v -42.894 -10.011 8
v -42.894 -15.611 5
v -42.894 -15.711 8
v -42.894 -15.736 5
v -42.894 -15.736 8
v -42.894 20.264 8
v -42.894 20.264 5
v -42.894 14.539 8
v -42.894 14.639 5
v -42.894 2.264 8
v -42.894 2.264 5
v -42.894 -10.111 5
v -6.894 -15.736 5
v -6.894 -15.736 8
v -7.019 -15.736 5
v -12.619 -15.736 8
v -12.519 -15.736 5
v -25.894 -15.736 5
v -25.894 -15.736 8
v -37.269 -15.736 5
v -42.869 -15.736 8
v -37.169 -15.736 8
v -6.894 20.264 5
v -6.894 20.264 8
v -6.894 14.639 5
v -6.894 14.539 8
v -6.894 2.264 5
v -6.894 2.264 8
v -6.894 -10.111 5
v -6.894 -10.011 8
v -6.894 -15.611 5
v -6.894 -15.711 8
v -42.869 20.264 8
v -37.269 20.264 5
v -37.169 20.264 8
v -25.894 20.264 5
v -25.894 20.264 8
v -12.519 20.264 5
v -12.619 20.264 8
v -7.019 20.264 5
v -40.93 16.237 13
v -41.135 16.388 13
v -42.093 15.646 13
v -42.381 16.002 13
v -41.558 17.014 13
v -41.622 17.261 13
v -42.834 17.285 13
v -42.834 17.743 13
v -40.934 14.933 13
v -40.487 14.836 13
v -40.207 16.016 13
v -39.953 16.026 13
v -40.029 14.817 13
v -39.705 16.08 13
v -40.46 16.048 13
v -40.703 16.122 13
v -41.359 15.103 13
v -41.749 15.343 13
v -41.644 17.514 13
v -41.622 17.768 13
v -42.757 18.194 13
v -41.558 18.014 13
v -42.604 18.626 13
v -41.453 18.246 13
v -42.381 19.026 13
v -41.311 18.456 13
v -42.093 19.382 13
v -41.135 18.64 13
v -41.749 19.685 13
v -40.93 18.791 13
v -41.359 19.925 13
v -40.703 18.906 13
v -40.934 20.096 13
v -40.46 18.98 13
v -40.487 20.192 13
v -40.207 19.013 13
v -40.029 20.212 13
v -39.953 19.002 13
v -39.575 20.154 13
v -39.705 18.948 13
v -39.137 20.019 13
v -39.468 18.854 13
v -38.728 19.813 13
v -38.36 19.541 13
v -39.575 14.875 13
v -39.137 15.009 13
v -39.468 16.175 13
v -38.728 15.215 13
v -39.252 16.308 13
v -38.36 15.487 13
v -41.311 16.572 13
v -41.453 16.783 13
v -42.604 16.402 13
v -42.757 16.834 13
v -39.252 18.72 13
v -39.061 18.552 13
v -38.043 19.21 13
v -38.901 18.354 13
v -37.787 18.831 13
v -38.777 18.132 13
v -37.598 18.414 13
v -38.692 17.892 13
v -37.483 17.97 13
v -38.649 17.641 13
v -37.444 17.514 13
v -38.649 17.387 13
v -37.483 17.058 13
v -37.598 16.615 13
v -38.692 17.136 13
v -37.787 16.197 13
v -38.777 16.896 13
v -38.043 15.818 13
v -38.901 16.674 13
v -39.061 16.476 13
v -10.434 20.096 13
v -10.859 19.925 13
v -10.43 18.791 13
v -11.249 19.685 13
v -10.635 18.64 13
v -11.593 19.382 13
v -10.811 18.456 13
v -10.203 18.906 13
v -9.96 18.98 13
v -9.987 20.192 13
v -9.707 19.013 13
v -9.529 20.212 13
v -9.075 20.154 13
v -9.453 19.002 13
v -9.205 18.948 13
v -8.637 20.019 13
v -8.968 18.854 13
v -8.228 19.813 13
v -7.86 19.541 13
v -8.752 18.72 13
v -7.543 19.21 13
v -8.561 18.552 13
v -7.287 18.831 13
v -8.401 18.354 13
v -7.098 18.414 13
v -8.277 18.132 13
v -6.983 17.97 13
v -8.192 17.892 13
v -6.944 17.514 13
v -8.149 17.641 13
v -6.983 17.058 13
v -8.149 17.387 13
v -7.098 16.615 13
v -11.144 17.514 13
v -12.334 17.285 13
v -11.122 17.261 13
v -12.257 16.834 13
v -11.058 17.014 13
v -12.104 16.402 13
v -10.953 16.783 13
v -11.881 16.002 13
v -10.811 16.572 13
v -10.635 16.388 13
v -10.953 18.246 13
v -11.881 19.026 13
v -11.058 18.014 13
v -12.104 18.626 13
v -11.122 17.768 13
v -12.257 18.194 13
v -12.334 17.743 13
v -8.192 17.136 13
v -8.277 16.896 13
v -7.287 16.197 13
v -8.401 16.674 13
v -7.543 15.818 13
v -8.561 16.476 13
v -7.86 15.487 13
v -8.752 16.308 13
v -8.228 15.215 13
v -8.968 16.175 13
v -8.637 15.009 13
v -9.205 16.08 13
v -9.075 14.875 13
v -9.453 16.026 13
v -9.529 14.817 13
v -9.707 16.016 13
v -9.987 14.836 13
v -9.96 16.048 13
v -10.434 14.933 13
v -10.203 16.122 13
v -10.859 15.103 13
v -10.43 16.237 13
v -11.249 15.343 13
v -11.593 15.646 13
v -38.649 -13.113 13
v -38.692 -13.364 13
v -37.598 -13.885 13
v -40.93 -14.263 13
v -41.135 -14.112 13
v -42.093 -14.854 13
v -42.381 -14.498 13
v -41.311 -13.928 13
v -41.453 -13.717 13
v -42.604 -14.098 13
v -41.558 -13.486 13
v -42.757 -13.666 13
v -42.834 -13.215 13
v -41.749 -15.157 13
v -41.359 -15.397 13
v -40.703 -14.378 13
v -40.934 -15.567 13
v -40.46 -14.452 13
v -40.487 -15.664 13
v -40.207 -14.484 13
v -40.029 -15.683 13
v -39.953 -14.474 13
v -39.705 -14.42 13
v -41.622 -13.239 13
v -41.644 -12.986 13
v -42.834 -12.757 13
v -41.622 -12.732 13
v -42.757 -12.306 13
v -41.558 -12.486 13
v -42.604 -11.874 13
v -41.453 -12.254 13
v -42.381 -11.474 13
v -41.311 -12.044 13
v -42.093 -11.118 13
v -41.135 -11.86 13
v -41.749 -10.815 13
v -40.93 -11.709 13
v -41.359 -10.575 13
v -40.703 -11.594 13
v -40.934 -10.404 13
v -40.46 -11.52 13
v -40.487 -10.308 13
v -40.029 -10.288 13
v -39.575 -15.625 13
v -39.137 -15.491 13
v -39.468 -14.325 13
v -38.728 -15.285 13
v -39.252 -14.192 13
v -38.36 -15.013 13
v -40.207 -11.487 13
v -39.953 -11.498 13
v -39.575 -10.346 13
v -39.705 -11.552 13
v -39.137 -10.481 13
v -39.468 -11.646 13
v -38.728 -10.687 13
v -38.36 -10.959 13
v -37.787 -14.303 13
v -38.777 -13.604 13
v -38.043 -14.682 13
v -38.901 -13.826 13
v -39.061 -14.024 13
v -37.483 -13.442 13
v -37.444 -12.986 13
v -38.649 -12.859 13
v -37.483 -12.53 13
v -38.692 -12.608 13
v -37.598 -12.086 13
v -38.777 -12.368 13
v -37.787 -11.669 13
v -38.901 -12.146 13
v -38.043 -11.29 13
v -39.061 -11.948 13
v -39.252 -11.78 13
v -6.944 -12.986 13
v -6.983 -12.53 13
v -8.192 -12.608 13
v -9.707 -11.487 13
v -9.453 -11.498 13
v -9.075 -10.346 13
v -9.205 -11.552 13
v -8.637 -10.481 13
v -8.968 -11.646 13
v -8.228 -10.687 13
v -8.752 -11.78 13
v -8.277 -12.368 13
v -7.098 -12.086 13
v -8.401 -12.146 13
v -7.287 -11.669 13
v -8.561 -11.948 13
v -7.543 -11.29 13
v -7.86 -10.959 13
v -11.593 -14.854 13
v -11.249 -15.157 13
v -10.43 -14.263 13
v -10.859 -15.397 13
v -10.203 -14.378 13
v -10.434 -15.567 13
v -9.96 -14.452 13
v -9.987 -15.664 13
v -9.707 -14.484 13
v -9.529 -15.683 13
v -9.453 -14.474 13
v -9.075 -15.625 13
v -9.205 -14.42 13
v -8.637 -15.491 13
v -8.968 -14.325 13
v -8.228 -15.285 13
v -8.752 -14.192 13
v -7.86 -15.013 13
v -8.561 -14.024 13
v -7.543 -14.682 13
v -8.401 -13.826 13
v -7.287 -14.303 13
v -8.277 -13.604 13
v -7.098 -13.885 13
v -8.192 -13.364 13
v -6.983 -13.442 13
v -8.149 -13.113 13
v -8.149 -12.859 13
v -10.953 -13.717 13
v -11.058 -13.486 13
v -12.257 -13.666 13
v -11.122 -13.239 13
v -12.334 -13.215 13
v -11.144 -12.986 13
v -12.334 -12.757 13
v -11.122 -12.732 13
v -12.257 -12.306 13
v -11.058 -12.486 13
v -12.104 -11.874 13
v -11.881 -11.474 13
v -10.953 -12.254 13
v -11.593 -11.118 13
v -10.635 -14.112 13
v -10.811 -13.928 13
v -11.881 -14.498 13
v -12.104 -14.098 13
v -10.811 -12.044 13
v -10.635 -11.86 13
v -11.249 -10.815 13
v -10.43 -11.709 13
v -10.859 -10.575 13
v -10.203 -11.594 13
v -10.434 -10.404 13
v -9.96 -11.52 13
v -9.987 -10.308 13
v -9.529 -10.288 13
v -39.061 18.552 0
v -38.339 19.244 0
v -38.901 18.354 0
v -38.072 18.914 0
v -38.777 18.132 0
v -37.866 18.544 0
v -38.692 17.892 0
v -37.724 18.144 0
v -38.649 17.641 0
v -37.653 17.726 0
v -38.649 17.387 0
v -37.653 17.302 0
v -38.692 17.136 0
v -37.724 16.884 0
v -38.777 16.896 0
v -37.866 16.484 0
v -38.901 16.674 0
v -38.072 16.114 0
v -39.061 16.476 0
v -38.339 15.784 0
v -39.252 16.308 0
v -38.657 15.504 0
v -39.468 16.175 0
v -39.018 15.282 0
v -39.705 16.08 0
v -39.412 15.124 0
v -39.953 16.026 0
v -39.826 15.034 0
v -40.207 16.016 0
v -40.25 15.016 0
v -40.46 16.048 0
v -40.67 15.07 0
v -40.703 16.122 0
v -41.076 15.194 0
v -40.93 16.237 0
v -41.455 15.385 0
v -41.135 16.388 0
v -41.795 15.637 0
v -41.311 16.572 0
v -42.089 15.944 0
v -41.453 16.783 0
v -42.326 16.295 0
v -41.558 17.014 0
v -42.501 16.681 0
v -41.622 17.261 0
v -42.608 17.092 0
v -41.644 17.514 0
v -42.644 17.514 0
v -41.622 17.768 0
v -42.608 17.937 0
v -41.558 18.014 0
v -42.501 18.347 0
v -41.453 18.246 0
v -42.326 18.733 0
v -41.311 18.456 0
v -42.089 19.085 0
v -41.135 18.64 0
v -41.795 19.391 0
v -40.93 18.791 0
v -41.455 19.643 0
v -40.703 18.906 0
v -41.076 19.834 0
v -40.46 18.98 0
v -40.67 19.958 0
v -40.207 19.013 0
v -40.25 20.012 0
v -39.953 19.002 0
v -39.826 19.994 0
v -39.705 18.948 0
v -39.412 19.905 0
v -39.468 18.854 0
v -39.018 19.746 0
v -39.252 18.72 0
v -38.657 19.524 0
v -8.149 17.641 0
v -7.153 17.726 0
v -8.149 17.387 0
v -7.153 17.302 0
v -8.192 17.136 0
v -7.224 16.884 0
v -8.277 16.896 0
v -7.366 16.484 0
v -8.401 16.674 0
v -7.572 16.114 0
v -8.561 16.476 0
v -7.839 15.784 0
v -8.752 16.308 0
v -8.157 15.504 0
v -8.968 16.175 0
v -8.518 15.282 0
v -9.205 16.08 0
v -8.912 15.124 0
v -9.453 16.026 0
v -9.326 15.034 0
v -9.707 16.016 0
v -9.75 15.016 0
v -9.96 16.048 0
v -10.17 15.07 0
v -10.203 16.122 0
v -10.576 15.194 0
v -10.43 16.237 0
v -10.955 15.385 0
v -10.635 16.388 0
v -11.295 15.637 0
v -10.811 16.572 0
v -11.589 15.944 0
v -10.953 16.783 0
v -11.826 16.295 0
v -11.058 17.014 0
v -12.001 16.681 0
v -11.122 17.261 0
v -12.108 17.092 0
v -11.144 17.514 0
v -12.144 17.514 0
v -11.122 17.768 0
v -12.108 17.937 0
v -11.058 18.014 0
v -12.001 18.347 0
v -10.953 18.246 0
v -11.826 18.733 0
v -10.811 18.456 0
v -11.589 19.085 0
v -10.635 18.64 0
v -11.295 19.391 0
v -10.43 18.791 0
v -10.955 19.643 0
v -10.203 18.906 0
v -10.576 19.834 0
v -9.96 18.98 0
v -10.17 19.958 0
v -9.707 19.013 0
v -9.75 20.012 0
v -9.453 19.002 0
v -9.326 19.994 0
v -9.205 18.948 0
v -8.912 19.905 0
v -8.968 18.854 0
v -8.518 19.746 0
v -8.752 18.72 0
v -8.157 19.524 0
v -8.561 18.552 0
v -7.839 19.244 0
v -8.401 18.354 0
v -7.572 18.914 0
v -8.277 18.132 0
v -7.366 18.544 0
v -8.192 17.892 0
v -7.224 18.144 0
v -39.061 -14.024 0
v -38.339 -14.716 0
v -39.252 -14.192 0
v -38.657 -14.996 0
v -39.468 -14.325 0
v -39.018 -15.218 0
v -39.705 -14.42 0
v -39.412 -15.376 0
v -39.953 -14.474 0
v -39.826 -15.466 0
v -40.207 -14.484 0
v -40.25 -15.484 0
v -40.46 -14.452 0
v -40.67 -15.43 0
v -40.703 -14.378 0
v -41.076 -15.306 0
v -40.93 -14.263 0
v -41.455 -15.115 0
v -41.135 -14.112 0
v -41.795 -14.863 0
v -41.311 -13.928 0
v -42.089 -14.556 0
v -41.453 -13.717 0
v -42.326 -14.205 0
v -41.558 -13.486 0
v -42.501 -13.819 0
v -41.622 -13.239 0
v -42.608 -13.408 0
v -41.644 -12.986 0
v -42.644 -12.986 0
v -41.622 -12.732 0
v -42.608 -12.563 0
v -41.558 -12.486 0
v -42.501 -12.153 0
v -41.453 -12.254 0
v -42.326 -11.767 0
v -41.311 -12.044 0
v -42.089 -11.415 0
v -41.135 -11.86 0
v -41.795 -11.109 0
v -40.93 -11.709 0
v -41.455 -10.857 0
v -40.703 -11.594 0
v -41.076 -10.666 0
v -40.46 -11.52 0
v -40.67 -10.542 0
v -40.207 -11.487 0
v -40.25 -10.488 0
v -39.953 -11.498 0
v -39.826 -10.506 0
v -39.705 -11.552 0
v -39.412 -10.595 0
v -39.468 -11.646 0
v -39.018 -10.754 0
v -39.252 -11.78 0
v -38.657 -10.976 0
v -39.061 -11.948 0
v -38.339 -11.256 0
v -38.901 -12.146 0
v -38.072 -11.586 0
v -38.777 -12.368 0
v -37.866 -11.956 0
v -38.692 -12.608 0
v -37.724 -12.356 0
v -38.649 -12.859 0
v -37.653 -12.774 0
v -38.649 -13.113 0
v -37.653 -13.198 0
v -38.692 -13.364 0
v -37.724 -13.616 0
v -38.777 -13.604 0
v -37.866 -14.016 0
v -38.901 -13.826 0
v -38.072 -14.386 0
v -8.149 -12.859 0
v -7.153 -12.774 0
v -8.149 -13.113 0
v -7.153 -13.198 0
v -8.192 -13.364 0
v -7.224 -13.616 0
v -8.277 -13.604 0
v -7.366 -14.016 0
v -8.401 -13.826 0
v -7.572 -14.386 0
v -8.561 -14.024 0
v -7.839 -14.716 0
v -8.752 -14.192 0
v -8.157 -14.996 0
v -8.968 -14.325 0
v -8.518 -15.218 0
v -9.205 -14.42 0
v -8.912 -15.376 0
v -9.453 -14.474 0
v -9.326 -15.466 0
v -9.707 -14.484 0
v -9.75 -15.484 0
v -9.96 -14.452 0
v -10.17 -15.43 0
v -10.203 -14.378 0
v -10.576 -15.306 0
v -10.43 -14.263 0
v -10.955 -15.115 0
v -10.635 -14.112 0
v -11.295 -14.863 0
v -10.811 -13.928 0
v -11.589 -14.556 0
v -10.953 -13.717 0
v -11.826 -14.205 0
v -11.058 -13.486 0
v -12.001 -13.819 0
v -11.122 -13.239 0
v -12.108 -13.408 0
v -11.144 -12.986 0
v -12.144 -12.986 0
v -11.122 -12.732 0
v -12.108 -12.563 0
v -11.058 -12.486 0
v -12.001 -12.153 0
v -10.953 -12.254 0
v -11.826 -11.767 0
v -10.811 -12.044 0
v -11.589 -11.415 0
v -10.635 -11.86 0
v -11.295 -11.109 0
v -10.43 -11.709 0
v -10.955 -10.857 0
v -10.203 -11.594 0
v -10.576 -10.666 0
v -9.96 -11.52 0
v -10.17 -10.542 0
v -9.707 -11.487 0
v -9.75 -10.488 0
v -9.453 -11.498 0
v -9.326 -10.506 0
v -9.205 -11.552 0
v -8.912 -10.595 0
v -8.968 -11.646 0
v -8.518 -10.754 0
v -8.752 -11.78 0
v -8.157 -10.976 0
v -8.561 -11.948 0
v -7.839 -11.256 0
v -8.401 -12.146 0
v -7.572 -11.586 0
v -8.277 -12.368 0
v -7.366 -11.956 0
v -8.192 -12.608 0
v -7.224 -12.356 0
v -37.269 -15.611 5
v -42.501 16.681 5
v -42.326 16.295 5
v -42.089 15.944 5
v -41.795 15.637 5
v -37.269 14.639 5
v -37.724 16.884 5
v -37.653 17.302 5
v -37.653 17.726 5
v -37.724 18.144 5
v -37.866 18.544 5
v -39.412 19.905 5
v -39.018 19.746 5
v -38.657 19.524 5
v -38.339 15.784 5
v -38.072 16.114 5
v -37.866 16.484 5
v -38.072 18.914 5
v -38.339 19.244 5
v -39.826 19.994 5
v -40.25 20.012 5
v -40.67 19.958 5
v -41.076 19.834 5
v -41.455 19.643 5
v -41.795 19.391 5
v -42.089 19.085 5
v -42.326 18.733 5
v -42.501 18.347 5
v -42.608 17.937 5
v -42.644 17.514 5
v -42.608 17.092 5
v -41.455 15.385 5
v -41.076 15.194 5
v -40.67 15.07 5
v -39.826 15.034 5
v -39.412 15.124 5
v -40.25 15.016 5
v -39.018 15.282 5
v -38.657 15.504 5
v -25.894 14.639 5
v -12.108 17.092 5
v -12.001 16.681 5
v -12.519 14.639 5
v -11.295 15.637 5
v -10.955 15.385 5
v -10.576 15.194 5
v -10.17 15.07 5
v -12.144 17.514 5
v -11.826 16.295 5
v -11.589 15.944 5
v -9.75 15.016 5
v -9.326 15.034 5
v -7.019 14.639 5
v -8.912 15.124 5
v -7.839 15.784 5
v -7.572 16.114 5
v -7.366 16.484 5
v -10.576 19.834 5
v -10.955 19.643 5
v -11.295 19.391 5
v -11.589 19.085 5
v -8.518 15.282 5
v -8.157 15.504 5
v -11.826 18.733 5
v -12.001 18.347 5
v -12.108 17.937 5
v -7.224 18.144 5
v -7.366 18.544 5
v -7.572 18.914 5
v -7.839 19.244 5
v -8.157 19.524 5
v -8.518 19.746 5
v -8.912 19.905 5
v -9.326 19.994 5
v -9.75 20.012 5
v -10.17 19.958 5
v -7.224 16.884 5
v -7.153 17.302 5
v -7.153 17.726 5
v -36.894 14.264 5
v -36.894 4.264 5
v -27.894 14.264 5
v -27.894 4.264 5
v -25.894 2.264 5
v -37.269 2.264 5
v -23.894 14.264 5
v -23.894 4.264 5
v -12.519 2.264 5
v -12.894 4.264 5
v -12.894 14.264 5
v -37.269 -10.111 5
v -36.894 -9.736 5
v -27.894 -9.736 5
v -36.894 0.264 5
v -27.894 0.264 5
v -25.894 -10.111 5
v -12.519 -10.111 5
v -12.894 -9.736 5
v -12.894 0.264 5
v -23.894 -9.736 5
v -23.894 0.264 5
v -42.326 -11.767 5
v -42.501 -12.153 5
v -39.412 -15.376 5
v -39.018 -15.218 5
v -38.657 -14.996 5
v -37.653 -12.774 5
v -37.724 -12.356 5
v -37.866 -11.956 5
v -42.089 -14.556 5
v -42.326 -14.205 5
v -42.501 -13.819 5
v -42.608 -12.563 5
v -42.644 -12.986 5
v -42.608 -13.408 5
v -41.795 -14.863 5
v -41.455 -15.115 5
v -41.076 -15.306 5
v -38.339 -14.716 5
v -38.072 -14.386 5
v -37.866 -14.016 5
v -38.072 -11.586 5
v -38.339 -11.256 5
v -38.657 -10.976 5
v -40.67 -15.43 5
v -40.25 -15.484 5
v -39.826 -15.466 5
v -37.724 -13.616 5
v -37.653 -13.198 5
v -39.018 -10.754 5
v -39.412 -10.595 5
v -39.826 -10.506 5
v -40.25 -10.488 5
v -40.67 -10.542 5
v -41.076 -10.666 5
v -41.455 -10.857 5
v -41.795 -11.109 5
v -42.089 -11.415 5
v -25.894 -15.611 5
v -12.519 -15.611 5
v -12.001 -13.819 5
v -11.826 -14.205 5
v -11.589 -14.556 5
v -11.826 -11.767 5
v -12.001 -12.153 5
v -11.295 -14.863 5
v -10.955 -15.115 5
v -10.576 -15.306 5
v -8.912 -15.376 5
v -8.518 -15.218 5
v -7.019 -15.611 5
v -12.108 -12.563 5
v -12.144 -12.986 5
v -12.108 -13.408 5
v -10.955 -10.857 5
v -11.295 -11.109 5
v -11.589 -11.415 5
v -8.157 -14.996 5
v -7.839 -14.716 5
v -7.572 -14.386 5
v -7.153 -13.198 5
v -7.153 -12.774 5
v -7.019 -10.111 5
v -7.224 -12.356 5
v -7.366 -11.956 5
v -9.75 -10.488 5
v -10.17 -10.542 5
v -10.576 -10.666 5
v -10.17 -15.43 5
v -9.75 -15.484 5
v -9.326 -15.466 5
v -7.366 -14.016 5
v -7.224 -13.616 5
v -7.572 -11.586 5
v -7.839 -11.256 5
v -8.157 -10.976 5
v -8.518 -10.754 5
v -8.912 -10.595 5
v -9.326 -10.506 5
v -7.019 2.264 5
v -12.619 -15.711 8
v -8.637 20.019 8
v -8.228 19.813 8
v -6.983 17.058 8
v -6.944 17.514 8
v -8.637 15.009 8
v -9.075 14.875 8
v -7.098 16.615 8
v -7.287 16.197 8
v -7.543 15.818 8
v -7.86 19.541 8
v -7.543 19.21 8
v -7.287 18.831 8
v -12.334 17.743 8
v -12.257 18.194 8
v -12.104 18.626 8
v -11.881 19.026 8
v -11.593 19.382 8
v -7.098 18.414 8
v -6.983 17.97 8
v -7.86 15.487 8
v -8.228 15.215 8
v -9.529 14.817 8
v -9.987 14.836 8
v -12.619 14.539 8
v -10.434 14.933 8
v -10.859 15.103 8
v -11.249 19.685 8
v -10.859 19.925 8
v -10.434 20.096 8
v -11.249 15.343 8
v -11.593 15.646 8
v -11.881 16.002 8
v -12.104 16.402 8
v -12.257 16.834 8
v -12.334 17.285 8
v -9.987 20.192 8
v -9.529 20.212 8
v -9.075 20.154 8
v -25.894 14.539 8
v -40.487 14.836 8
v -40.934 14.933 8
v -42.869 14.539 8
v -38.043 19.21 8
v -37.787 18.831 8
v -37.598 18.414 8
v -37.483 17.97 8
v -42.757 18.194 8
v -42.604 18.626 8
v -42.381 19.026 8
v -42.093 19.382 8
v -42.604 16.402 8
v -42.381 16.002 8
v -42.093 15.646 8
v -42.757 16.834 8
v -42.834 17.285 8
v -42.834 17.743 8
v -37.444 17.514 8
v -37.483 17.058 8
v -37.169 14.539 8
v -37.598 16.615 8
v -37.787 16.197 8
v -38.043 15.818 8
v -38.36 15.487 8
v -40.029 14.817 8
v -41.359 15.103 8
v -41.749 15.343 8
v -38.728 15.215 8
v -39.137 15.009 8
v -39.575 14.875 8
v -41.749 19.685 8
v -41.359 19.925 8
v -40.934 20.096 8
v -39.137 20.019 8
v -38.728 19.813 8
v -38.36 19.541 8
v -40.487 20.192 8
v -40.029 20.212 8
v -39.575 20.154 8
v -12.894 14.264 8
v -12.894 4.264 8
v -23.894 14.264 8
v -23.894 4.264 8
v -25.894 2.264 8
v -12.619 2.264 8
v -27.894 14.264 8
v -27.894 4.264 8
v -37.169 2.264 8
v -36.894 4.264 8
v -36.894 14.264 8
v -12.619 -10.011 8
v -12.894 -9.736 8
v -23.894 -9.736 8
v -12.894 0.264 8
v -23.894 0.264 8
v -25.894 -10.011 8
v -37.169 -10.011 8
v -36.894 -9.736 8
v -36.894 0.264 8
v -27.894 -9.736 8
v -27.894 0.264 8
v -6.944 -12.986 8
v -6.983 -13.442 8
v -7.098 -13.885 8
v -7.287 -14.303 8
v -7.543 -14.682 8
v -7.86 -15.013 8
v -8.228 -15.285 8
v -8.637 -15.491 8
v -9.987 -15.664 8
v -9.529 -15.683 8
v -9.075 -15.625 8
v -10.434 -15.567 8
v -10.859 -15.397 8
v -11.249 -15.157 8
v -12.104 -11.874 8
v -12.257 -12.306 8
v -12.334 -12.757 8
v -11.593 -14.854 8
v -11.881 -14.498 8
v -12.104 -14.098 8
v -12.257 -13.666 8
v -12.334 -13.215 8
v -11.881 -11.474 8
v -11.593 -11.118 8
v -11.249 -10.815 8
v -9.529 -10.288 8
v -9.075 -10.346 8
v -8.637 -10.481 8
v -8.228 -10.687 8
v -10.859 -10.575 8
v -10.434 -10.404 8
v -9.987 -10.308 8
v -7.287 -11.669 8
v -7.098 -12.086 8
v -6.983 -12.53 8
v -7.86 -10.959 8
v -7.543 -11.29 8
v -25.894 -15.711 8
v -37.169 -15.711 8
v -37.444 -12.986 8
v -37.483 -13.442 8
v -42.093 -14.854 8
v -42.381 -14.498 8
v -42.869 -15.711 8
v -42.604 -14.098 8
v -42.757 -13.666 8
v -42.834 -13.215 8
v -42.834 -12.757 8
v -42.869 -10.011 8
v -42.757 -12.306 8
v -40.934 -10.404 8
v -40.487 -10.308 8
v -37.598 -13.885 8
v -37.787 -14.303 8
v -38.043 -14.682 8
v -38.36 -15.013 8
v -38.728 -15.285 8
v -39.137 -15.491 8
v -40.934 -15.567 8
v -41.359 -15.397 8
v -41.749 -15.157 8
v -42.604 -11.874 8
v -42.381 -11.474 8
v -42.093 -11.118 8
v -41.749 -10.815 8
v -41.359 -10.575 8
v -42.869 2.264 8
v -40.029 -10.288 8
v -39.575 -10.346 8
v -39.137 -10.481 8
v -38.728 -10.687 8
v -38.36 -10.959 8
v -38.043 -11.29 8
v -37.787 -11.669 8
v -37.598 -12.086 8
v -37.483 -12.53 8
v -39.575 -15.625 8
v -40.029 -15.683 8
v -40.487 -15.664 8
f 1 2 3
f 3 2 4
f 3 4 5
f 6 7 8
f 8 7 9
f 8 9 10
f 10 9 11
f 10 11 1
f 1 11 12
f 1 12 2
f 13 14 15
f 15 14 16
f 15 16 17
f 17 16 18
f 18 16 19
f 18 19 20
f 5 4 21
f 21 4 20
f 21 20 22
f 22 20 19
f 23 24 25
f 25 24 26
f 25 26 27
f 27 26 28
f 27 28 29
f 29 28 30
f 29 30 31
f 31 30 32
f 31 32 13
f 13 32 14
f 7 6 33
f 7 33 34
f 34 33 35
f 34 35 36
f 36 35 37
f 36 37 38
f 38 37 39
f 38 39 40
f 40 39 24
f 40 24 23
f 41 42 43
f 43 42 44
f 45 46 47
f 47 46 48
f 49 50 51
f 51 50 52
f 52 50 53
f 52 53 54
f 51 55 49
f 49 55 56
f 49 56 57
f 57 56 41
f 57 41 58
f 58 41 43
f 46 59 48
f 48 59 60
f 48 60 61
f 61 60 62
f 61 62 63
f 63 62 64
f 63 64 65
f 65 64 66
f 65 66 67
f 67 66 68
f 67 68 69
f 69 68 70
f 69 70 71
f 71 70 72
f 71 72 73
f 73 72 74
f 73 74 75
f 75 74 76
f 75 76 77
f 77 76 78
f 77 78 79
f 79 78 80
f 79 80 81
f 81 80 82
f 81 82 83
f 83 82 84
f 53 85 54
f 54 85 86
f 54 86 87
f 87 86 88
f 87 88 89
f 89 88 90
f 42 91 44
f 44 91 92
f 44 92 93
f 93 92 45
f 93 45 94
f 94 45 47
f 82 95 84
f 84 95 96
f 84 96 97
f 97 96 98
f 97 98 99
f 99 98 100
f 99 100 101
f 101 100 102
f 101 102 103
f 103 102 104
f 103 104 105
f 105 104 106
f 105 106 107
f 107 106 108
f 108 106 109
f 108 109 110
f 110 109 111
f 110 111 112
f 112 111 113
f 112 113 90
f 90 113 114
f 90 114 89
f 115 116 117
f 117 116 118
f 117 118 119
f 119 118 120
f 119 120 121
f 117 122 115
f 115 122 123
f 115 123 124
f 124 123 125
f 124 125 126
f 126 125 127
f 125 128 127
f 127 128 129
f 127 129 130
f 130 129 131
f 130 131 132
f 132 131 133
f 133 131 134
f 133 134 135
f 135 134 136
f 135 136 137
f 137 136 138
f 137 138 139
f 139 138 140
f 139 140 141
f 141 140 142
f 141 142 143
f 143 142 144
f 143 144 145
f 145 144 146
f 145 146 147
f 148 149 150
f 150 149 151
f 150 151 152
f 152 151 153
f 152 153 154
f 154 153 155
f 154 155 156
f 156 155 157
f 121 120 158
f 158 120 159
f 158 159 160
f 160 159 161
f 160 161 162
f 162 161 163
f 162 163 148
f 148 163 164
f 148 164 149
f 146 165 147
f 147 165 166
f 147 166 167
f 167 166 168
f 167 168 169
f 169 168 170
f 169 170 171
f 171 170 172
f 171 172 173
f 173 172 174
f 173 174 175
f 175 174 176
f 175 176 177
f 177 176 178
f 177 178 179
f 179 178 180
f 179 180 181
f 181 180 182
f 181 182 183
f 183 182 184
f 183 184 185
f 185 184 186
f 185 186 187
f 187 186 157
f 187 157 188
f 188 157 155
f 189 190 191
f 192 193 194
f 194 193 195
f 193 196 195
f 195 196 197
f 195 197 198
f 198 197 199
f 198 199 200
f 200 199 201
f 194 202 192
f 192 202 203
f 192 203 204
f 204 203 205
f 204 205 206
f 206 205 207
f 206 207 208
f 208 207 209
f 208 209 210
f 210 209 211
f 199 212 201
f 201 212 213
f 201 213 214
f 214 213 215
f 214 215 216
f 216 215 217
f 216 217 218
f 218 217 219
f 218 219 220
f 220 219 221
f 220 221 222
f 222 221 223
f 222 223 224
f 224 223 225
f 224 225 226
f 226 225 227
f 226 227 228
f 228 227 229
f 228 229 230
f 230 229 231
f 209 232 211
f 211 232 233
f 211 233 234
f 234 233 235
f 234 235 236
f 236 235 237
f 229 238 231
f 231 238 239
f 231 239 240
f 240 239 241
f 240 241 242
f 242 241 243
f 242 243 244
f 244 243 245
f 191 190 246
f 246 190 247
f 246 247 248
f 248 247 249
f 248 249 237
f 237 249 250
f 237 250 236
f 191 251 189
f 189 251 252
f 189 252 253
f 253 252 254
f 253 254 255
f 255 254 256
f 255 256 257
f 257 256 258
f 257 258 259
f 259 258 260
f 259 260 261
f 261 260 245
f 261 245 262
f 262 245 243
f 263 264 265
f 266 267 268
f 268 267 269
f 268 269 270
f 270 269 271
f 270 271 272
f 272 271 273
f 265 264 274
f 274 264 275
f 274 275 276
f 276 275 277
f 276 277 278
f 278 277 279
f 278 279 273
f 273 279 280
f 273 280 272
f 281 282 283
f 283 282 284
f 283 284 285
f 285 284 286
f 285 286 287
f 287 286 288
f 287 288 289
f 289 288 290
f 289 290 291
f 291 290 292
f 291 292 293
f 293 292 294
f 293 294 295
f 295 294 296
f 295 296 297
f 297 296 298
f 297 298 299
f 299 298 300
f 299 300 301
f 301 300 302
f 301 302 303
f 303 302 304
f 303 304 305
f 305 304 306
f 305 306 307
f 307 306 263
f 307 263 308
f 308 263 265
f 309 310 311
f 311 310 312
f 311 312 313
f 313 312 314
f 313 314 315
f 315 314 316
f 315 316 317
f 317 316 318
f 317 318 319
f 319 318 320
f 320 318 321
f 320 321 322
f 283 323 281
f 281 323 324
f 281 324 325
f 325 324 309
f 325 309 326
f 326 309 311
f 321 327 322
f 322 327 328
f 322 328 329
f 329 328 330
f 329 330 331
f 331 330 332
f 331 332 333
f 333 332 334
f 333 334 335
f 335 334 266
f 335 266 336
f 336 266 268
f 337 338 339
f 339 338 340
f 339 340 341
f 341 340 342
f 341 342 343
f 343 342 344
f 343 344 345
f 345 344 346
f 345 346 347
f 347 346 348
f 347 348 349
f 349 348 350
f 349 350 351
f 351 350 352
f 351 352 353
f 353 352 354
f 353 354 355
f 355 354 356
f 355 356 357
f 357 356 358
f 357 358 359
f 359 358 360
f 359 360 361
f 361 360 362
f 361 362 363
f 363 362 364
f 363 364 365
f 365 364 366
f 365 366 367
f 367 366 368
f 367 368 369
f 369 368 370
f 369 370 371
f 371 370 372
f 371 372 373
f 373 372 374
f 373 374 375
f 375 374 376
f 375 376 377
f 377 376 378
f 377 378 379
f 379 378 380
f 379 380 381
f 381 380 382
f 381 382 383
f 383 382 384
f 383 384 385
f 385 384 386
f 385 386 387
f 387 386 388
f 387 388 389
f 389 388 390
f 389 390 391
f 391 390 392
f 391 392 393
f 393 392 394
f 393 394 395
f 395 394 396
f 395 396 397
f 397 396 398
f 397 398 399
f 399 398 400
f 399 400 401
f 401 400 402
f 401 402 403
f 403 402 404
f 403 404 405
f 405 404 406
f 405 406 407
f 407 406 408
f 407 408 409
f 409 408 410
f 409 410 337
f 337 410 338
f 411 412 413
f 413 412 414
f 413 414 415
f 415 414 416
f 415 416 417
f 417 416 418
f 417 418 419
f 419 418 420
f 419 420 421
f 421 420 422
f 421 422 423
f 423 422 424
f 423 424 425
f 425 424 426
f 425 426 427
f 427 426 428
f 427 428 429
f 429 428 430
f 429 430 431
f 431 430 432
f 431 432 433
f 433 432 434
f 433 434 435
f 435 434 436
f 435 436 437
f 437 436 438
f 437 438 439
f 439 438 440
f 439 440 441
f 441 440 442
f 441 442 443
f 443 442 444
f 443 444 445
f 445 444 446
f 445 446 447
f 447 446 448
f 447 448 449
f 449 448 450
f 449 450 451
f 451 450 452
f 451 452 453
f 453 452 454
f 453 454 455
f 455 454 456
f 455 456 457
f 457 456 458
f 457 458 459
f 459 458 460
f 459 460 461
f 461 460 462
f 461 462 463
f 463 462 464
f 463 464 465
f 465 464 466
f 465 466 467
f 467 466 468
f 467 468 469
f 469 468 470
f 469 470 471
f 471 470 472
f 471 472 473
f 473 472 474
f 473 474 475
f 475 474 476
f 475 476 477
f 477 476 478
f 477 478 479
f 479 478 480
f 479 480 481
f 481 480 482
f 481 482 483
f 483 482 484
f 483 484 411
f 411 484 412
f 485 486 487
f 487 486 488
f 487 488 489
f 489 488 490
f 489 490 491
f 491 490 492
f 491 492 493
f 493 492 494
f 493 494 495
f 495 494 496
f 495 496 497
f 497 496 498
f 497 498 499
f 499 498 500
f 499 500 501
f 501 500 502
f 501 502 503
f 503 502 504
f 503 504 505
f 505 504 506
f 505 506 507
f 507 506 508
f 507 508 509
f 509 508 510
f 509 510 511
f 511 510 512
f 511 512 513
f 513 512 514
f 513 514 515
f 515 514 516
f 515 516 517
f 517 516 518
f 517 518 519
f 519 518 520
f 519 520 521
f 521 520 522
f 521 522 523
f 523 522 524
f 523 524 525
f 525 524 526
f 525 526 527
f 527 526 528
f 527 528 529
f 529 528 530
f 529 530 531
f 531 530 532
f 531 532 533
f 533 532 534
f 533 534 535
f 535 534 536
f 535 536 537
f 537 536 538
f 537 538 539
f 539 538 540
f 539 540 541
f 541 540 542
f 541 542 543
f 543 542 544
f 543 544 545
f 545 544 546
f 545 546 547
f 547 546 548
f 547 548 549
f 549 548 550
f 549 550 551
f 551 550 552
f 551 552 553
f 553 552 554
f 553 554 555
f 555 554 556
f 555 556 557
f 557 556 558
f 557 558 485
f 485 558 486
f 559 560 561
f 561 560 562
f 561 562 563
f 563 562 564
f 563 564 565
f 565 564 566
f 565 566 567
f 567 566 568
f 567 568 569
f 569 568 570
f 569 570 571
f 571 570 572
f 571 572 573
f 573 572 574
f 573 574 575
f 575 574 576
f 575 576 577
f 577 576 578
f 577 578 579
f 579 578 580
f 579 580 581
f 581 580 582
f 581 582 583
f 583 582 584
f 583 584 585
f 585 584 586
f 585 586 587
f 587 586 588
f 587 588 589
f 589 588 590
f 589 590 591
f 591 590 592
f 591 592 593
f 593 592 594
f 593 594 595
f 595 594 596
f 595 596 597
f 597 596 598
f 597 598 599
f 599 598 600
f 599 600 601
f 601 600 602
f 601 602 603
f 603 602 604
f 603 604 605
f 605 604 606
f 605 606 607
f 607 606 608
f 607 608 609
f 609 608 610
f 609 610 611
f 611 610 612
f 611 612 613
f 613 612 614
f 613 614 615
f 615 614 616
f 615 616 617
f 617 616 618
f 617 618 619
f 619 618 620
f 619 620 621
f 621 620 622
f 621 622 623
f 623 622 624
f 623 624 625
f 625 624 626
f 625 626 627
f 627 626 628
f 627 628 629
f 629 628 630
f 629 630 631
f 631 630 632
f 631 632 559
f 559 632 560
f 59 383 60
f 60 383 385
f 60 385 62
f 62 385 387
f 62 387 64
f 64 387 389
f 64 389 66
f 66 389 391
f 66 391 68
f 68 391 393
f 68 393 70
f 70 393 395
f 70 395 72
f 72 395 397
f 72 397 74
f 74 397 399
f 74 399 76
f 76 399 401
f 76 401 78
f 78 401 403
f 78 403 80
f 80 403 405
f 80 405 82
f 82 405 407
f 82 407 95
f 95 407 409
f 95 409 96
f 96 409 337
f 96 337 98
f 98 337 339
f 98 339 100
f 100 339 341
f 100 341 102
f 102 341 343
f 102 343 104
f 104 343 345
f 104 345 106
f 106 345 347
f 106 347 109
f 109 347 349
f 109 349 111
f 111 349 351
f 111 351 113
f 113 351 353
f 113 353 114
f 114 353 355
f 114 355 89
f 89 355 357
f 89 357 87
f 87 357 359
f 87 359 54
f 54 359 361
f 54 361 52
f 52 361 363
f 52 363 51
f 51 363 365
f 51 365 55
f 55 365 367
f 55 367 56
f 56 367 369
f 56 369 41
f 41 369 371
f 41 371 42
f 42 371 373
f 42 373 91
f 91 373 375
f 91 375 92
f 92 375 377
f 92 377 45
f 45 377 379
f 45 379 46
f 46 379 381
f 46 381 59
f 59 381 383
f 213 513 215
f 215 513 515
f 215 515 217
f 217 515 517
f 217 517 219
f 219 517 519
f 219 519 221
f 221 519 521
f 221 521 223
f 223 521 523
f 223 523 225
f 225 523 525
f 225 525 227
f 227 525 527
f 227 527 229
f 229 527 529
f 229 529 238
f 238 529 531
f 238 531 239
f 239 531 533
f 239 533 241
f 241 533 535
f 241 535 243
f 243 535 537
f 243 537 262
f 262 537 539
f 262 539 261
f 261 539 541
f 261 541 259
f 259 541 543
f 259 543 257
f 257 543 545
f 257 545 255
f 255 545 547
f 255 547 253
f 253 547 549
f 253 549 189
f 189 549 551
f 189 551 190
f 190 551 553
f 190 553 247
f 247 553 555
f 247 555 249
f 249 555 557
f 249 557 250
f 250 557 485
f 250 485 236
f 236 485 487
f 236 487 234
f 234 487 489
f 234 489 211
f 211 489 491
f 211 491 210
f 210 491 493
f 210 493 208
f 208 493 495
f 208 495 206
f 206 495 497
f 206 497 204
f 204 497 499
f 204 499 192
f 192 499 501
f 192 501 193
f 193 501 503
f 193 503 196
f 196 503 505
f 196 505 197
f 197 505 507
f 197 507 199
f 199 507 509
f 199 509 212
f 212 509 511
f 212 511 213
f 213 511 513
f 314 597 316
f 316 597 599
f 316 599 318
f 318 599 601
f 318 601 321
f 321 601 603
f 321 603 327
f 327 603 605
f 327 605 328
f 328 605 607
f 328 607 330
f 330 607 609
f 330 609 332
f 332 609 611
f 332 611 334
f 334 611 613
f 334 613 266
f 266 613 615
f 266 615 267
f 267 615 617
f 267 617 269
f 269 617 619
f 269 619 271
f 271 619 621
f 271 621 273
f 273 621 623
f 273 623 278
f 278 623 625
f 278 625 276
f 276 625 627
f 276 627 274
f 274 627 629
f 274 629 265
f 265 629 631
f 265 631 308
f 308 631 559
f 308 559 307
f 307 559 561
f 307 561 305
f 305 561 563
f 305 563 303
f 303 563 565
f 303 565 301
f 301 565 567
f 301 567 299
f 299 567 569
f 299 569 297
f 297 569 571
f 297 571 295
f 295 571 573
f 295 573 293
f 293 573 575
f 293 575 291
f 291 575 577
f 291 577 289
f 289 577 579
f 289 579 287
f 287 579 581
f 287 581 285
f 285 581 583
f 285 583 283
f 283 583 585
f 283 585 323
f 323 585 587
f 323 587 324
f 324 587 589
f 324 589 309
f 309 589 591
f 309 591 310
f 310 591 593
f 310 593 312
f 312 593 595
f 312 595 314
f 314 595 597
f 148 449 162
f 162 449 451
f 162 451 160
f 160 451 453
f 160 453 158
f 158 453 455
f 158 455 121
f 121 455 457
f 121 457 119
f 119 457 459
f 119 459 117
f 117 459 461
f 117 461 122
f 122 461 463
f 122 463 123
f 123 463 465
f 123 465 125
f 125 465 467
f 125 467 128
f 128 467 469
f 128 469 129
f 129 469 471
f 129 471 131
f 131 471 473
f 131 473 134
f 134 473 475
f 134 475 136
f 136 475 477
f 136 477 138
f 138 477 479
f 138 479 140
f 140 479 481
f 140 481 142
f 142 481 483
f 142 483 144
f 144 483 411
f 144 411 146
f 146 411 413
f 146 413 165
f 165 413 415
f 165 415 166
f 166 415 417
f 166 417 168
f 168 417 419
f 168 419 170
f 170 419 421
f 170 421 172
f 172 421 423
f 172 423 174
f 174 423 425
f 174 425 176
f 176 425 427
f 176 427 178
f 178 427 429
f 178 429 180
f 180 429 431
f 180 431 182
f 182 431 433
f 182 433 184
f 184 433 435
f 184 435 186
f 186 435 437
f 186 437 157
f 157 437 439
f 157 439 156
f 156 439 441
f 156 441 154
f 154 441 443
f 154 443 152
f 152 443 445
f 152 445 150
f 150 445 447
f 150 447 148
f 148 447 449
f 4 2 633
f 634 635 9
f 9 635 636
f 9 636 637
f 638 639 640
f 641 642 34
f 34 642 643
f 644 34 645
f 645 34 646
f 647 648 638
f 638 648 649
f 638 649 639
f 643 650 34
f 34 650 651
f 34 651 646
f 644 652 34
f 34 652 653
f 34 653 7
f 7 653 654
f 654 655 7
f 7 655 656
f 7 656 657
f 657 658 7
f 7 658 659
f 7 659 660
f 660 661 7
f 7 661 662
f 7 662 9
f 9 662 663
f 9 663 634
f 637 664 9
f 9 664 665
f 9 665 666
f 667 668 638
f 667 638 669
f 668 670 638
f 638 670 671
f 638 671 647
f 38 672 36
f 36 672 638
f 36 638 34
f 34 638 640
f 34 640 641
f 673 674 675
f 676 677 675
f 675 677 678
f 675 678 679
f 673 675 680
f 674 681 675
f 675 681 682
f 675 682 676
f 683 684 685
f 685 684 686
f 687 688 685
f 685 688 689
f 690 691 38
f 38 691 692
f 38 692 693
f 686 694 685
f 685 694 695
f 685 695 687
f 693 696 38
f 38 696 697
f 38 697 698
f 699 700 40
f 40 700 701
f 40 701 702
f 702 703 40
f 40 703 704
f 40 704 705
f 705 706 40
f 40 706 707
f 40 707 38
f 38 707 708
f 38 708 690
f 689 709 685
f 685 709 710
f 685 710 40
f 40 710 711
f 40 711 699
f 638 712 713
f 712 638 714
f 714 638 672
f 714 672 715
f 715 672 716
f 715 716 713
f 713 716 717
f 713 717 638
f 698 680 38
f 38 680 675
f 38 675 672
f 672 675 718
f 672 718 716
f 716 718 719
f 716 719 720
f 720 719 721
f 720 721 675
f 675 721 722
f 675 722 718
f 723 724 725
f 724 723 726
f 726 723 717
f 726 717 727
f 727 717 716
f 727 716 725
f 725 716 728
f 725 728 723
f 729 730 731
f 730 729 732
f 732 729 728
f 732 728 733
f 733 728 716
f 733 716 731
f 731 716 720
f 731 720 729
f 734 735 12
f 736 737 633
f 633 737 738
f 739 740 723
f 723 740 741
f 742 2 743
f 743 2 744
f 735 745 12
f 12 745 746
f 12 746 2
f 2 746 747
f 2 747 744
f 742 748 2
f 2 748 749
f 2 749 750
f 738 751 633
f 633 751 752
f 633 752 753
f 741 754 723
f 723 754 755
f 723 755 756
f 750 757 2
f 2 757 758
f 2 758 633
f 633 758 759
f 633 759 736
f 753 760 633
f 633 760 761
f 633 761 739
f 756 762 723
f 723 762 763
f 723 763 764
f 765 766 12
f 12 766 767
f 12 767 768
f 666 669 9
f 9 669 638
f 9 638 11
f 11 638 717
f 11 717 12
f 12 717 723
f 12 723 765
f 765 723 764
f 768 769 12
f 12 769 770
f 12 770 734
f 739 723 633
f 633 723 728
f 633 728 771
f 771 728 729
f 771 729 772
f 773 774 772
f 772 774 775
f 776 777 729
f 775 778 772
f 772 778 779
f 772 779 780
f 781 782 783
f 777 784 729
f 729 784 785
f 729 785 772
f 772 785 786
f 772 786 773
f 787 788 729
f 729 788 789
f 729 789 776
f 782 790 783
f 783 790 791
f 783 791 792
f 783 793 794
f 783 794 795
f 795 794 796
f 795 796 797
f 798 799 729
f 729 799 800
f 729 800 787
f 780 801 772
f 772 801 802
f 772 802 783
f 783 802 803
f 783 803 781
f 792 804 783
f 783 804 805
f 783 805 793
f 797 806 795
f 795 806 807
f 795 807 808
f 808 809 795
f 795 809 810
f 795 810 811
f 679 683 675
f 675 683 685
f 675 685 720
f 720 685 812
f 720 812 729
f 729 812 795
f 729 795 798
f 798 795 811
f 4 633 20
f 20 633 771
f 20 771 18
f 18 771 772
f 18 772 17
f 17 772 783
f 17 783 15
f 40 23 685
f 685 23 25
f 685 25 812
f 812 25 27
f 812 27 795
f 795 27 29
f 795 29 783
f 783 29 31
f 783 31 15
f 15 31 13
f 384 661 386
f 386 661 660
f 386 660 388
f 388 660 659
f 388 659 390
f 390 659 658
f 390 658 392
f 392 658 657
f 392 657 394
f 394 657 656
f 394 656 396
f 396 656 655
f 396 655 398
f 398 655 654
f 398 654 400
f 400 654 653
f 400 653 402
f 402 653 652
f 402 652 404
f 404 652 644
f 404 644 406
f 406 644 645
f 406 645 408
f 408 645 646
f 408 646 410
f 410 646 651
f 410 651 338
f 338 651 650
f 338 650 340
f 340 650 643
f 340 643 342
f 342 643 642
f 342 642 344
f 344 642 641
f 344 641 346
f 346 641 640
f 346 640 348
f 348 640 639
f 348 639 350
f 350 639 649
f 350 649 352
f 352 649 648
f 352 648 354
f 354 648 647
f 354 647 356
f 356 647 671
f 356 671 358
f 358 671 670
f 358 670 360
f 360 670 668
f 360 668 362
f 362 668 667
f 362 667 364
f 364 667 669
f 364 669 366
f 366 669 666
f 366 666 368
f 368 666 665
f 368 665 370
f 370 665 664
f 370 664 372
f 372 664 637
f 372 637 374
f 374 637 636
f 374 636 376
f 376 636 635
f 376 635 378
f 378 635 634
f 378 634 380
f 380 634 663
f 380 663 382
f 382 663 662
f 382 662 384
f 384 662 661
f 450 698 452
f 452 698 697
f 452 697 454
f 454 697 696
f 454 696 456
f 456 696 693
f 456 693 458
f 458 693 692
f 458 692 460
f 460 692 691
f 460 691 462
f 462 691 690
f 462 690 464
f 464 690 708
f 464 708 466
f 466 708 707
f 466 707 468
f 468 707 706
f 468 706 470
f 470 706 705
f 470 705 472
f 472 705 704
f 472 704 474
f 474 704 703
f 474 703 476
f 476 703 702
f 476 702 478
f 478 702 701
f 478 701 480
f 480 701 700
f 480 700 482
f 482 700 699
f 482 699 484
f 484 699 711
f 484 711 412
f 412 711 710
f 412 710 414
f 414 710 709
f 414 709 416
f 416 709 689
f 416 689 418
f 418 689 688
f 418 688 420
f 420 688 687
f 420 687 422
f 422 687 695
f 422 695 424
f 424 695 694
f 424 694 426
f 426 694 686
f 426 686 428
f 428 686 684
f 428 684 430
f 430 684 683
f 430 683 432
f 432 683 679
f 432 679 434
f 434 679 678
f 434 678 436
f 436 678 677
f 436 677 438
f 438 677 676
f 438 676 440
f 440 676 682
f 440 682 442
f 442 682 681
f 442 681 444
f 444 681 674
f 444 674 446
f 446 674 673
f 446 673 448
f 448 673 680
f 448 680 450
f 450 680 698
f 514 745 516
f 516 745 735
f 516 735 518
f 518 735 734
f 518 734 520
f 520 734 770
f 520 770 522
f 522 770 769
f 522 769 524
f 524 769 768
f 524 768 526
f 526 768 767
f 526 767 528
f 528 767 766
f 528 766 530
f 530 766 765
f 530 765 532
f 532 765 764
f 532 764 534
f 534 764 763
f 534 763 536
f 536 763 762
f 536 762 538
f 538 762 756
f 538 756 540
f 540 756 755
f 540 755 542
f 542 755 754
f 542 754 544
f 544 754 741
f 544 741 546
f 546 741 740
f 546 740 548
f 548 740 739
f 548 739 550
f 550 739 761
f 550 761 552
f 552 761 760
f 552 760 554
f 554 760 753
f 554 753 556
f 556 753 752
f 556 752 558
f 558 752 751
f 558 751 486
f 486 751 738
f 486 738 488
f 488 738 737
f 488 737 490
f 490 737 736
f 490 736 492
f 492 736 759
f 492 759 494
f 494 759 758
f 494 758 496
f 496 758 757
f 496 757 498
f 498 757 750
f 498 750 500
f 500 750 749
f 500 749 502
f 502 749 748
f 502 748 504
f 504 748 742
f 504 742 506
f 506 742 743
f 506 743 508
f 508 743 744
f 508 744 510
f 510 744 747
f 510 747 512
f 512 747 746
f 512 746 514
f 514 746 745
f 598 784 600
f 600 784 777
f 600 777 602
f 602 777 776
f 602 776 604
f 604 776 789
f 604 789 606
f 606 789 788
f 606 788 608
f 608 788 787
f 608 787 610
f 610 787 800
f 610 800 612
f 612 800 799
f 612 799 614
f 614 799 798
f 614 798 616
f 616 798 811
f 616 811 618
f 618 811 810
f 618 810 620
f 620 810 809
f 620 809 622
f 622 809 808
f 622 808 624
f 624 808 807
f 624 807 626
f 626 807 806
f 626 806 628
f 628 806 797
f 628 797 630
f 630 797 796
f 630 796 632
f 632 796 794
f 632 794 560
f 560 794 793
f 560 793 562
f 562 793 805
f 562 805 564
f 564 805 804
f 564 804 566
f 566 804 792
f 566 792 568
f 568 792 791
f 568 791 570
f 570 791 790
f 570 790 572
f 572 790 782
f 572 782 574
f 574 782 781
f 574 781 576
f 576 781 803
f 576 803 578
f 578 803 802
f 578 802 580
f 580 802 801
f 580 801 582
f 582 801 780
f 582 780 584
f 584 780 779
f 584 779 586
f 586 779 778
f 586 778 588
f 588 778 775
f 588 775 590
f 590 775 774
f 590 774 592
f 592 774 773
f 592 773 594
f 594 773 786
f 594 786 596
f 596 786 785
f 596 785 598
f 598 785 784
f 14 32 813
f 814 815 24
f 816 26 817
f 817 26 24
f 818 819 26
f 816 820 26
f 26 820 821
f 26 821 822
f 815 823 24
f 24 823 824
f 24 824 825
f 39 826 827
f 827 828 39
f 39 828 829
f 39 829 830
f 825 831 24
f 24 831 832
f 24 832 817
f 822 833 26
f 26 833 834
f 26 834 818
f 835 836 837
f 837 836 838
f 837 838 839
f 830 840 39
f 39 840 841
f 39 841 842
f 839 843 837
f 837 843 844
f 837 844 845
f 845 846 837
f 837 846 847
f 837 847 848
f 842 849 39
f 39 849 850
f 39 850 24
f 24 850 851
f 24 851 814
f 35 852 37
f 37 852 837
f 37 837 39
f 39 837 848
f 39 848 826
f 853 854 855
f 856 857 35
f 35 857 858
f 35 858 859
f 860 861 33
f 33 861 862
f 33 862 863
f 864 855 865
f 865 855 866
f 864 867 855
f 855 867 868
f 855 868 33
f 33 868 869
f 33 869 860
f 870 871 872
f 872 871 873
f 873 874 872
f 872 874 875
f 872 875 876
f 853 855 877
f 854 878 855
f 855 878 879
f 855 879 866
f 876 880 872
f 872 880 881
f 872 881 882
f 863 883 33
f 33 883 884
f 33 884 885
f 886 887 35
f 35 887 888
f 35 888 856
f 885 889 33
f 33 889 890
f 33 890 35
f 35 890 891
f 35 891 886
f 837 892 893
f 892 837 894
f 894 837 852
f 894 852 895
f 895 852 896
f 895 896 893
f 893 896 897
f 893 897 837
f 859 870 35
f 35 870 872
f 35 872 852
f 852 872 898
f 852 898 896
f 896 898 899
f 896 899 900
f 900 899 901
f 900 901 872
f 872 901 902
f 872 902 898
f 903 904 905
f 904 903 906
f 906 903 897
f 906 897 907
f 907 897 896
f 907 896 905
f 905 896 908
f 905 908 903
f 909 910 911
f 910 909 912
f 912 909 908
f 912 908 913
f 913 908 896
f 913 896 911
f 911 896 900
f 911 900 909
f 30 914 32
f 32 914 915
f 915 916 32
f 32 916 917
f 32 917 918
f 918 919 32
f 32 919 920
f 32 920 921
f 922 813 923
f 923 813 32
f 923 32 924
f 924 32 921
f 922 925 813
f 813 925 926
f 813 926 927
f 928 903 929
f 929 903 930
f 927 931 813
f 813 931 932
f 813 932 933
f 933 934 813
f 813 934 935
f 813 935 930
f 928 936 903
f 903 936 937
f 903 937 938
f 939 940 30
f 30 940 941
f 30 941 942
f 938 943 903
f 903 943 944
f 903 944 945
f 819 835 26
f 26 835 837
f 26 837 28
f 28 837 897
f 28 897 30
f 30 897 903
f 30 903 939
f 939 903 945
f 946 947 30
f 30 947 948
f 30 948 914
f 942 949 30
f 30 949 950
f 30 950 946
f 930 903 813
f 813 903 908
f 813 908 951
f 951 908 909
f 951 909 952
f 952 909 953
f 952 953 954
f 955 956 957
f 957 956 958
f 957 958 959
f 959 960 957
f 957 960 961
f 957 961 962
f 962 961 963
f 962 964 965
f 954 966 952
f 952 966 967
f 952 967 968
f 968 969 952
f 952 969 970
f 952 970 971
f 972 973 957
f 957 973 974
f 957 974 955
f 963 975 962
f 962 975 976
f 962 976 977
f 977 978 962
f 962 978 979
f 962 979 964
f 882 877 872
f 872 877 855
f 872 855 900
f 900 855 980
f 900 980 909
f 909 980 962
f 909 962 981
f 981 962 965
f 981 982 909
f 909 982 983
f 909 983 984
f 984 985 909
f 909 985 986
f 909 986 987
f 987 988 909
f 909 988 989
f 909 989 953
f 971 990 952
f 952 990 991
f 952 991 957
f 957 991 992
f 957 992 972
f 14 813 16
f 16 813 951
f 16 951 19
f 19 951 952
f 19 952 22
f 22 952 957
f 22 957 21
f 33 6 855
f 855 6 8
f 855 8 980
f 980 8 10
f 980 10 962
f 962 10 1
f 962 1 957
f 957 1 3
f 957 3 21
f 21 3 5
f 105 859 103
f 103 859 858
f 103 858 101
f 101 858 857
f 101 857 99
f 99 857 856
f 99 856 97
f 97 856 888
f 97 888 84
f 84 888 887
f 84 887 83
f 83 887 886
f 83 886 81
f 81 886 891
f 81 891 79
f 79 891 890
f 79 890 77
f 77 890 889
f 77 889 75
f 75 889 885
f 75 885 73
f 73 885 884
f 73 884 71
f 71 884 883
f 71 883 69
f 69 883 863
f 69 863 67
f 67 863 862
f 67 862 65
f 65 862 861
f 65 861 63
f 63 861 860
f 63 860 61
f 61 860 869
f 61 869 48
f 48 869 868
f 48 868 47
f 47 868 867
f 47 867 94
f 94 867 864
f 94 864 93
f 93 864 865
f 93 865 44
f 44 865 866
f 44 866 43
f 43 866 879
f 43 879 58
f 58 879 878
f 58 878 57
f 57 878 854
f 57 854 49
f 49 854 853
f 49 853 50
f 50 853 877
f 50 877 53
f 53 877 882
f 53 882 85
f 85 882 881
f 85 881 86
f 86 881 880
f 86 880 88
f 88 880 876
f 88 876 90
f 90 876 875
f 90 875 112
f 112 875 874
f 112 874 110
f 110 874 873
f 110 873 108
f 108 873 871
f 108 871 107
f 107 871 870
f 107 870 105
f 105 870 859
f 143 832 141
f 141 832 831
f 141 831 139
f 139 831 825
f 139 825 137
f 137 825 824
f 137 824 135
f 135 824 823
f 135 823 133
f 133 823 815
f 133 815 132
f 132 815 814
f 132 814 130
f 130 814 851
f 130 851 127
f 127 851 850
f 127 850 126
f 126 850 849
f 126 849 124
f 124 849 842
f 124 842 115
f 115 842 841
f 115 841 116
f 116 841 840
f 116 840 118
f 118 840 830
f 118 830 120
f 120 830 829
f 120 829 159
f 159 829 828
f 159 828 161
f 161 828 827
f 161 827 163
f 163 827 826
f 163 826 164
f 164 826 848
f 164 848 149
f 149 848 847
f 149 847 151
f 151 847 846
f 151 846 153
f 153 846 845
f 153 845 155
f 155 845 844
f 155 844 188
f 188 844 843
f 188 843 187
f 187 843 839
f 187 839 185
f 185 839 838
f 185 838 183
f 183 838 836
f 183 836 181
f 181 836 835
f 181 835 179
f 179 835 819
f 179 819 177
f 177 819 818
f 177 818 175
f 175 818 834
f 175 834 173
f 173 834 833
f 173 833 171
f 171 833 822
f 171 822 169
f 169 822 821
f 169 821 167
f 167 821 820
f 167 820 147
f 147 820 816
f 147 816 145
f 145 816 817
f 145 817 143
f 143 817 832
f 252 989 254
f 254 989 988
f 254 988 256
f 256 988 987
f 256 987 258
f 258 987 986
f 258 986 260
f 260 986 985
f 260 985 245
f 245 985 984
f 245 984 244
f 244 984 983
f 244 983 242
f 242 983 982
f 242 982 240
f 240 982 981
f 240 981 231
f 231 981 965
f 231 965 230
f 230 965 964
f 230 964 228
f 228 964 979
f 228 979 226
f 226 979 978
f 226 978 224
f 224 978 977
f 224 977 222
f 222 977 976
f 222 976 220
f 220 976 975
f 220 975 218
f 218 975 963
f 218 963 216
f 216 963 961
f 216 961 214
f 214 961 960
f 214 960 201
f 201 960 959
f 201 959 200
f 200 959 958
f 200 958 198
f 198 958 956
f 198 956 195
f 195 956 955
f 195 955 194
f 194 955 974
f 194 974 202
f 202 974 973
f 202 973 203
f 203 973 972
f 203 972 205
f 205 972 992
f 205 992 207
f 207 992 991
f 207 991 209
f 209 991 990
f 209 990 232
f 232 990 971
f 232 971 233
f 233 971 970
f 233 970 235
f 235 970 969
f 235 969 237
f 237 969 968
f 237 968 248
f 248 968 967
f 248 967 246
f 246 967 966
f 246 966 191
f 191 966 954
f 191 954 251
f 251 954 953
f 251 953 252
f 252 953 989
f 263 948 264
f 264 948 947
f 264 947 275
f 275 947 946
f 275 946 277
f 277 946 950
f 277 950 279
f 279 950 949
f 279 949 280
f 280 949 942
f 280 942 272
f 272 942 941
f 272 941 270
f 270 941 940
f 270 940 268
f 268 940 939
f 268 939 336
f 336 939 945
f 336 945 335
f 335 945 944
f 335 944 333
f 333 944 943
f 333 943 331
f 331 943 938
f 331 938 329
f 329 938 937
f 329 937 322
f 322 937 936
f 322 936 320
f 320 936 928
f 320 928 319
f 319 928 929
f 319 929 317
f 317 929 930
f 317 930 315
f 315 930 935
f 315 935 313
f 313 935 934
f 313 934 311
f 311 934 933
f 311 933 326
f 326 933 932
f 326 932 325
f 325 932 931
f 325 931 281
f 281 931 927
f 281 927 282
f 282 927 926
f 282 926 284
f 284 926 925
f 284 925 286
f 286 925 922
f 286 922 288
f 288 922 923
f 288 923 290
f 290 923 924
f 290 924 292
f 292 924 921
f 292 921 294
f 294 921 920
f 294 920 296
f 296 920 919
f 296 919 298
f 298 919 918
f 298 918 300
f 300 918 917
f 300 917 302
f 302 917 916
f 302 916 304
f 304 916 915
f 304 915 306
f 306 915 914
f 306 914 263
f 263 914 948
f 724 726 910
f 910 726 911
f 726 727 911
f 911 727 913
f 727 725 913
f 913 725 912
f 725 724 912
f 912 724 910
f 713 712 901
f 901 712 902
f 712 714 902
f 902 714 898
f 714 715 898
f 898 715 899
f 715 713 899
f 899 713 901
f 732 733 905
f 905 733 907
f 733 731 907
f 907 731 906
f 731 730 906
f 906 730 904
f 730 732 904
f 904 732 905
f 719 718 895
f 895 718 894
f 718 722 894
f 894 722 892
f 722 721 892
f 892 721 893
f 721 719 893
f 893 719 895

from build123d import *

# Parameters (mm, degrees)
CROQUIS1_W              = 36
CROQUIS1_H              = 36
SALIENTE_EXTRUIR1_DEPTH = 13
CROQUIS5_R              = 1.5
CORTAR_EXTRUIR2_DEPTH   = 13
CROQUIS6_W              = 36
CROQUIS6_H              = 36
CROQUIS6_R              = 2.5
CORTAR_EXTRUIR3_DEPTH   = 5
CROQUIS7_W              = 36
CROQUIS7_H              = 36
CROQUIS7_R              = 2.7
CORTAR_EXTRUIR4_DEPTH   = 5
CROQUIS8_W              = 9
CROQUIS8_H              = 10
CROQUIS8_W_2            = 11
CORTAR_EXTRUIR5_DEPTH   = 3


with BuildPart() as part:
    # Croquis1 → Saliente-Extruir1 (new body)
    with BuildSketch(Plane.XY):
        with Locations((-24.893753741, 2.264150943)):
            Rectangle(CROQUIS1_W, CROQUIS1_H)
    extrude(amount=SALIENTE_EXTRUIR1_DEPTH)

    # Croquis5 → Cortar-Extruir2 (cut)
    with BuildSketch(Plane(origin=(0, 0, 0), x_dir=(-1, 0, 0), z_dir=(0, 0, -1))):
        with Locations((40.143753741, 17.514150943)):
            Circle(CROQUIS5_R)
        with Locations((40.143753741, -12.985849057)):
            Circle(CROQUIS5_R)
        with Locations((9.643753741, -12.985849057)):
            Circle(CROQUIS5_R)
        with Locations((9.643753741, 17.514150943)):
            Circle(CROQUIS5_R)
    extrude(amount=-CORTAR_EXTRUIR2_DEPTH, mode=Mode.SUBTRACT)

    # Croquis6 → Cortar-Extruir3 (cut)
    with BuildSketch(Plane(origin=(0, 0, 0), x_dir=(-1, 0, 0), z_dir=(0, 0, -1))):
        with Locations((24.893753741, 2.264150943)):
            Rectangle(CROQUIS6_W, CROQUIS6_H)
        with Locations((40.143753741, 17.514150943)):
            Circle(CROQUIS6_R, mode=Mode.SUBTRACT)
        with Locations((9.643753741, 17.514150943)):
            Circle(CROQUIS6_R, mode=Mode.SUBTRACT)
        with Locations((40.143753741, -12.985849057)):
            Circle(CROQUIS6_R, mode=Mode.SUBTRACT)
        with Locations((9.643753741, -12.985849057)):
            Circle(CROQUIS6_R, mode=Mode.SUBTRACT)
    extrude(amount=-CORTAR_EXTRUIR3_DEPTH, mode=Mode.SUBTRACT)

    # Croquis7 → Cortar-Extruir4 (cut)
    with BuildSketch(Plane.XY.offset(13)):
        with Locations((-24.893753741, 2.264150943)):
            Rectangle(CROQUIS7_W, CROQUIS7_H)
        with Locations((-40.143753741, 17.514150943)):
            Circle(CROQUIS7_R, mode=Mode.SUBTRACT)
        with Locations((-9.643753741, 17.514150943)):
            Circle(CROQUIS7_R, mode=Mode.SUBTRACT)
        with Locations((-40.143753741, -12.985849057)):
            Circle(CROQUIS7_R, mode=Mode.SUBTRACT)
        with Locations((-9.643753741, -12.985849057)):
            Circle(CROQUIS7_R, mode=Mode.SUBTRACT)
    extrude(amount=-CORTAR_EXTRUIR4_DEPTH, mode=Mode.SUBTRACT)

    # Croquis8 → Cortar-Extruir5 (cut)
    with BuildSketch(Plane.XY.offset(8)):
        with Locations((-32.393753741, -4.735849057)):
            Rectangle(CROQUIS8_W, CROQUIS8_H)
        with Locations((-32.393753741, 9.264150943)):
            Rectangle(CROQUIS8_W, CROQUIS8_H)
        with Locations((-18.393753741, -4.735849057)):
            Rectangle(CROQUIS8_W_2, CROQUIS8_H)
        with Locations((-18.393753741, 9.264150943)):
            Rectangle(CROQUIS8_W_2, CROQUIS8_H)
    extrude(amount=-CORTAR_EXTRUIR5_DEPTH, mode=Mode.SUBTRACT)


solid = part.part
